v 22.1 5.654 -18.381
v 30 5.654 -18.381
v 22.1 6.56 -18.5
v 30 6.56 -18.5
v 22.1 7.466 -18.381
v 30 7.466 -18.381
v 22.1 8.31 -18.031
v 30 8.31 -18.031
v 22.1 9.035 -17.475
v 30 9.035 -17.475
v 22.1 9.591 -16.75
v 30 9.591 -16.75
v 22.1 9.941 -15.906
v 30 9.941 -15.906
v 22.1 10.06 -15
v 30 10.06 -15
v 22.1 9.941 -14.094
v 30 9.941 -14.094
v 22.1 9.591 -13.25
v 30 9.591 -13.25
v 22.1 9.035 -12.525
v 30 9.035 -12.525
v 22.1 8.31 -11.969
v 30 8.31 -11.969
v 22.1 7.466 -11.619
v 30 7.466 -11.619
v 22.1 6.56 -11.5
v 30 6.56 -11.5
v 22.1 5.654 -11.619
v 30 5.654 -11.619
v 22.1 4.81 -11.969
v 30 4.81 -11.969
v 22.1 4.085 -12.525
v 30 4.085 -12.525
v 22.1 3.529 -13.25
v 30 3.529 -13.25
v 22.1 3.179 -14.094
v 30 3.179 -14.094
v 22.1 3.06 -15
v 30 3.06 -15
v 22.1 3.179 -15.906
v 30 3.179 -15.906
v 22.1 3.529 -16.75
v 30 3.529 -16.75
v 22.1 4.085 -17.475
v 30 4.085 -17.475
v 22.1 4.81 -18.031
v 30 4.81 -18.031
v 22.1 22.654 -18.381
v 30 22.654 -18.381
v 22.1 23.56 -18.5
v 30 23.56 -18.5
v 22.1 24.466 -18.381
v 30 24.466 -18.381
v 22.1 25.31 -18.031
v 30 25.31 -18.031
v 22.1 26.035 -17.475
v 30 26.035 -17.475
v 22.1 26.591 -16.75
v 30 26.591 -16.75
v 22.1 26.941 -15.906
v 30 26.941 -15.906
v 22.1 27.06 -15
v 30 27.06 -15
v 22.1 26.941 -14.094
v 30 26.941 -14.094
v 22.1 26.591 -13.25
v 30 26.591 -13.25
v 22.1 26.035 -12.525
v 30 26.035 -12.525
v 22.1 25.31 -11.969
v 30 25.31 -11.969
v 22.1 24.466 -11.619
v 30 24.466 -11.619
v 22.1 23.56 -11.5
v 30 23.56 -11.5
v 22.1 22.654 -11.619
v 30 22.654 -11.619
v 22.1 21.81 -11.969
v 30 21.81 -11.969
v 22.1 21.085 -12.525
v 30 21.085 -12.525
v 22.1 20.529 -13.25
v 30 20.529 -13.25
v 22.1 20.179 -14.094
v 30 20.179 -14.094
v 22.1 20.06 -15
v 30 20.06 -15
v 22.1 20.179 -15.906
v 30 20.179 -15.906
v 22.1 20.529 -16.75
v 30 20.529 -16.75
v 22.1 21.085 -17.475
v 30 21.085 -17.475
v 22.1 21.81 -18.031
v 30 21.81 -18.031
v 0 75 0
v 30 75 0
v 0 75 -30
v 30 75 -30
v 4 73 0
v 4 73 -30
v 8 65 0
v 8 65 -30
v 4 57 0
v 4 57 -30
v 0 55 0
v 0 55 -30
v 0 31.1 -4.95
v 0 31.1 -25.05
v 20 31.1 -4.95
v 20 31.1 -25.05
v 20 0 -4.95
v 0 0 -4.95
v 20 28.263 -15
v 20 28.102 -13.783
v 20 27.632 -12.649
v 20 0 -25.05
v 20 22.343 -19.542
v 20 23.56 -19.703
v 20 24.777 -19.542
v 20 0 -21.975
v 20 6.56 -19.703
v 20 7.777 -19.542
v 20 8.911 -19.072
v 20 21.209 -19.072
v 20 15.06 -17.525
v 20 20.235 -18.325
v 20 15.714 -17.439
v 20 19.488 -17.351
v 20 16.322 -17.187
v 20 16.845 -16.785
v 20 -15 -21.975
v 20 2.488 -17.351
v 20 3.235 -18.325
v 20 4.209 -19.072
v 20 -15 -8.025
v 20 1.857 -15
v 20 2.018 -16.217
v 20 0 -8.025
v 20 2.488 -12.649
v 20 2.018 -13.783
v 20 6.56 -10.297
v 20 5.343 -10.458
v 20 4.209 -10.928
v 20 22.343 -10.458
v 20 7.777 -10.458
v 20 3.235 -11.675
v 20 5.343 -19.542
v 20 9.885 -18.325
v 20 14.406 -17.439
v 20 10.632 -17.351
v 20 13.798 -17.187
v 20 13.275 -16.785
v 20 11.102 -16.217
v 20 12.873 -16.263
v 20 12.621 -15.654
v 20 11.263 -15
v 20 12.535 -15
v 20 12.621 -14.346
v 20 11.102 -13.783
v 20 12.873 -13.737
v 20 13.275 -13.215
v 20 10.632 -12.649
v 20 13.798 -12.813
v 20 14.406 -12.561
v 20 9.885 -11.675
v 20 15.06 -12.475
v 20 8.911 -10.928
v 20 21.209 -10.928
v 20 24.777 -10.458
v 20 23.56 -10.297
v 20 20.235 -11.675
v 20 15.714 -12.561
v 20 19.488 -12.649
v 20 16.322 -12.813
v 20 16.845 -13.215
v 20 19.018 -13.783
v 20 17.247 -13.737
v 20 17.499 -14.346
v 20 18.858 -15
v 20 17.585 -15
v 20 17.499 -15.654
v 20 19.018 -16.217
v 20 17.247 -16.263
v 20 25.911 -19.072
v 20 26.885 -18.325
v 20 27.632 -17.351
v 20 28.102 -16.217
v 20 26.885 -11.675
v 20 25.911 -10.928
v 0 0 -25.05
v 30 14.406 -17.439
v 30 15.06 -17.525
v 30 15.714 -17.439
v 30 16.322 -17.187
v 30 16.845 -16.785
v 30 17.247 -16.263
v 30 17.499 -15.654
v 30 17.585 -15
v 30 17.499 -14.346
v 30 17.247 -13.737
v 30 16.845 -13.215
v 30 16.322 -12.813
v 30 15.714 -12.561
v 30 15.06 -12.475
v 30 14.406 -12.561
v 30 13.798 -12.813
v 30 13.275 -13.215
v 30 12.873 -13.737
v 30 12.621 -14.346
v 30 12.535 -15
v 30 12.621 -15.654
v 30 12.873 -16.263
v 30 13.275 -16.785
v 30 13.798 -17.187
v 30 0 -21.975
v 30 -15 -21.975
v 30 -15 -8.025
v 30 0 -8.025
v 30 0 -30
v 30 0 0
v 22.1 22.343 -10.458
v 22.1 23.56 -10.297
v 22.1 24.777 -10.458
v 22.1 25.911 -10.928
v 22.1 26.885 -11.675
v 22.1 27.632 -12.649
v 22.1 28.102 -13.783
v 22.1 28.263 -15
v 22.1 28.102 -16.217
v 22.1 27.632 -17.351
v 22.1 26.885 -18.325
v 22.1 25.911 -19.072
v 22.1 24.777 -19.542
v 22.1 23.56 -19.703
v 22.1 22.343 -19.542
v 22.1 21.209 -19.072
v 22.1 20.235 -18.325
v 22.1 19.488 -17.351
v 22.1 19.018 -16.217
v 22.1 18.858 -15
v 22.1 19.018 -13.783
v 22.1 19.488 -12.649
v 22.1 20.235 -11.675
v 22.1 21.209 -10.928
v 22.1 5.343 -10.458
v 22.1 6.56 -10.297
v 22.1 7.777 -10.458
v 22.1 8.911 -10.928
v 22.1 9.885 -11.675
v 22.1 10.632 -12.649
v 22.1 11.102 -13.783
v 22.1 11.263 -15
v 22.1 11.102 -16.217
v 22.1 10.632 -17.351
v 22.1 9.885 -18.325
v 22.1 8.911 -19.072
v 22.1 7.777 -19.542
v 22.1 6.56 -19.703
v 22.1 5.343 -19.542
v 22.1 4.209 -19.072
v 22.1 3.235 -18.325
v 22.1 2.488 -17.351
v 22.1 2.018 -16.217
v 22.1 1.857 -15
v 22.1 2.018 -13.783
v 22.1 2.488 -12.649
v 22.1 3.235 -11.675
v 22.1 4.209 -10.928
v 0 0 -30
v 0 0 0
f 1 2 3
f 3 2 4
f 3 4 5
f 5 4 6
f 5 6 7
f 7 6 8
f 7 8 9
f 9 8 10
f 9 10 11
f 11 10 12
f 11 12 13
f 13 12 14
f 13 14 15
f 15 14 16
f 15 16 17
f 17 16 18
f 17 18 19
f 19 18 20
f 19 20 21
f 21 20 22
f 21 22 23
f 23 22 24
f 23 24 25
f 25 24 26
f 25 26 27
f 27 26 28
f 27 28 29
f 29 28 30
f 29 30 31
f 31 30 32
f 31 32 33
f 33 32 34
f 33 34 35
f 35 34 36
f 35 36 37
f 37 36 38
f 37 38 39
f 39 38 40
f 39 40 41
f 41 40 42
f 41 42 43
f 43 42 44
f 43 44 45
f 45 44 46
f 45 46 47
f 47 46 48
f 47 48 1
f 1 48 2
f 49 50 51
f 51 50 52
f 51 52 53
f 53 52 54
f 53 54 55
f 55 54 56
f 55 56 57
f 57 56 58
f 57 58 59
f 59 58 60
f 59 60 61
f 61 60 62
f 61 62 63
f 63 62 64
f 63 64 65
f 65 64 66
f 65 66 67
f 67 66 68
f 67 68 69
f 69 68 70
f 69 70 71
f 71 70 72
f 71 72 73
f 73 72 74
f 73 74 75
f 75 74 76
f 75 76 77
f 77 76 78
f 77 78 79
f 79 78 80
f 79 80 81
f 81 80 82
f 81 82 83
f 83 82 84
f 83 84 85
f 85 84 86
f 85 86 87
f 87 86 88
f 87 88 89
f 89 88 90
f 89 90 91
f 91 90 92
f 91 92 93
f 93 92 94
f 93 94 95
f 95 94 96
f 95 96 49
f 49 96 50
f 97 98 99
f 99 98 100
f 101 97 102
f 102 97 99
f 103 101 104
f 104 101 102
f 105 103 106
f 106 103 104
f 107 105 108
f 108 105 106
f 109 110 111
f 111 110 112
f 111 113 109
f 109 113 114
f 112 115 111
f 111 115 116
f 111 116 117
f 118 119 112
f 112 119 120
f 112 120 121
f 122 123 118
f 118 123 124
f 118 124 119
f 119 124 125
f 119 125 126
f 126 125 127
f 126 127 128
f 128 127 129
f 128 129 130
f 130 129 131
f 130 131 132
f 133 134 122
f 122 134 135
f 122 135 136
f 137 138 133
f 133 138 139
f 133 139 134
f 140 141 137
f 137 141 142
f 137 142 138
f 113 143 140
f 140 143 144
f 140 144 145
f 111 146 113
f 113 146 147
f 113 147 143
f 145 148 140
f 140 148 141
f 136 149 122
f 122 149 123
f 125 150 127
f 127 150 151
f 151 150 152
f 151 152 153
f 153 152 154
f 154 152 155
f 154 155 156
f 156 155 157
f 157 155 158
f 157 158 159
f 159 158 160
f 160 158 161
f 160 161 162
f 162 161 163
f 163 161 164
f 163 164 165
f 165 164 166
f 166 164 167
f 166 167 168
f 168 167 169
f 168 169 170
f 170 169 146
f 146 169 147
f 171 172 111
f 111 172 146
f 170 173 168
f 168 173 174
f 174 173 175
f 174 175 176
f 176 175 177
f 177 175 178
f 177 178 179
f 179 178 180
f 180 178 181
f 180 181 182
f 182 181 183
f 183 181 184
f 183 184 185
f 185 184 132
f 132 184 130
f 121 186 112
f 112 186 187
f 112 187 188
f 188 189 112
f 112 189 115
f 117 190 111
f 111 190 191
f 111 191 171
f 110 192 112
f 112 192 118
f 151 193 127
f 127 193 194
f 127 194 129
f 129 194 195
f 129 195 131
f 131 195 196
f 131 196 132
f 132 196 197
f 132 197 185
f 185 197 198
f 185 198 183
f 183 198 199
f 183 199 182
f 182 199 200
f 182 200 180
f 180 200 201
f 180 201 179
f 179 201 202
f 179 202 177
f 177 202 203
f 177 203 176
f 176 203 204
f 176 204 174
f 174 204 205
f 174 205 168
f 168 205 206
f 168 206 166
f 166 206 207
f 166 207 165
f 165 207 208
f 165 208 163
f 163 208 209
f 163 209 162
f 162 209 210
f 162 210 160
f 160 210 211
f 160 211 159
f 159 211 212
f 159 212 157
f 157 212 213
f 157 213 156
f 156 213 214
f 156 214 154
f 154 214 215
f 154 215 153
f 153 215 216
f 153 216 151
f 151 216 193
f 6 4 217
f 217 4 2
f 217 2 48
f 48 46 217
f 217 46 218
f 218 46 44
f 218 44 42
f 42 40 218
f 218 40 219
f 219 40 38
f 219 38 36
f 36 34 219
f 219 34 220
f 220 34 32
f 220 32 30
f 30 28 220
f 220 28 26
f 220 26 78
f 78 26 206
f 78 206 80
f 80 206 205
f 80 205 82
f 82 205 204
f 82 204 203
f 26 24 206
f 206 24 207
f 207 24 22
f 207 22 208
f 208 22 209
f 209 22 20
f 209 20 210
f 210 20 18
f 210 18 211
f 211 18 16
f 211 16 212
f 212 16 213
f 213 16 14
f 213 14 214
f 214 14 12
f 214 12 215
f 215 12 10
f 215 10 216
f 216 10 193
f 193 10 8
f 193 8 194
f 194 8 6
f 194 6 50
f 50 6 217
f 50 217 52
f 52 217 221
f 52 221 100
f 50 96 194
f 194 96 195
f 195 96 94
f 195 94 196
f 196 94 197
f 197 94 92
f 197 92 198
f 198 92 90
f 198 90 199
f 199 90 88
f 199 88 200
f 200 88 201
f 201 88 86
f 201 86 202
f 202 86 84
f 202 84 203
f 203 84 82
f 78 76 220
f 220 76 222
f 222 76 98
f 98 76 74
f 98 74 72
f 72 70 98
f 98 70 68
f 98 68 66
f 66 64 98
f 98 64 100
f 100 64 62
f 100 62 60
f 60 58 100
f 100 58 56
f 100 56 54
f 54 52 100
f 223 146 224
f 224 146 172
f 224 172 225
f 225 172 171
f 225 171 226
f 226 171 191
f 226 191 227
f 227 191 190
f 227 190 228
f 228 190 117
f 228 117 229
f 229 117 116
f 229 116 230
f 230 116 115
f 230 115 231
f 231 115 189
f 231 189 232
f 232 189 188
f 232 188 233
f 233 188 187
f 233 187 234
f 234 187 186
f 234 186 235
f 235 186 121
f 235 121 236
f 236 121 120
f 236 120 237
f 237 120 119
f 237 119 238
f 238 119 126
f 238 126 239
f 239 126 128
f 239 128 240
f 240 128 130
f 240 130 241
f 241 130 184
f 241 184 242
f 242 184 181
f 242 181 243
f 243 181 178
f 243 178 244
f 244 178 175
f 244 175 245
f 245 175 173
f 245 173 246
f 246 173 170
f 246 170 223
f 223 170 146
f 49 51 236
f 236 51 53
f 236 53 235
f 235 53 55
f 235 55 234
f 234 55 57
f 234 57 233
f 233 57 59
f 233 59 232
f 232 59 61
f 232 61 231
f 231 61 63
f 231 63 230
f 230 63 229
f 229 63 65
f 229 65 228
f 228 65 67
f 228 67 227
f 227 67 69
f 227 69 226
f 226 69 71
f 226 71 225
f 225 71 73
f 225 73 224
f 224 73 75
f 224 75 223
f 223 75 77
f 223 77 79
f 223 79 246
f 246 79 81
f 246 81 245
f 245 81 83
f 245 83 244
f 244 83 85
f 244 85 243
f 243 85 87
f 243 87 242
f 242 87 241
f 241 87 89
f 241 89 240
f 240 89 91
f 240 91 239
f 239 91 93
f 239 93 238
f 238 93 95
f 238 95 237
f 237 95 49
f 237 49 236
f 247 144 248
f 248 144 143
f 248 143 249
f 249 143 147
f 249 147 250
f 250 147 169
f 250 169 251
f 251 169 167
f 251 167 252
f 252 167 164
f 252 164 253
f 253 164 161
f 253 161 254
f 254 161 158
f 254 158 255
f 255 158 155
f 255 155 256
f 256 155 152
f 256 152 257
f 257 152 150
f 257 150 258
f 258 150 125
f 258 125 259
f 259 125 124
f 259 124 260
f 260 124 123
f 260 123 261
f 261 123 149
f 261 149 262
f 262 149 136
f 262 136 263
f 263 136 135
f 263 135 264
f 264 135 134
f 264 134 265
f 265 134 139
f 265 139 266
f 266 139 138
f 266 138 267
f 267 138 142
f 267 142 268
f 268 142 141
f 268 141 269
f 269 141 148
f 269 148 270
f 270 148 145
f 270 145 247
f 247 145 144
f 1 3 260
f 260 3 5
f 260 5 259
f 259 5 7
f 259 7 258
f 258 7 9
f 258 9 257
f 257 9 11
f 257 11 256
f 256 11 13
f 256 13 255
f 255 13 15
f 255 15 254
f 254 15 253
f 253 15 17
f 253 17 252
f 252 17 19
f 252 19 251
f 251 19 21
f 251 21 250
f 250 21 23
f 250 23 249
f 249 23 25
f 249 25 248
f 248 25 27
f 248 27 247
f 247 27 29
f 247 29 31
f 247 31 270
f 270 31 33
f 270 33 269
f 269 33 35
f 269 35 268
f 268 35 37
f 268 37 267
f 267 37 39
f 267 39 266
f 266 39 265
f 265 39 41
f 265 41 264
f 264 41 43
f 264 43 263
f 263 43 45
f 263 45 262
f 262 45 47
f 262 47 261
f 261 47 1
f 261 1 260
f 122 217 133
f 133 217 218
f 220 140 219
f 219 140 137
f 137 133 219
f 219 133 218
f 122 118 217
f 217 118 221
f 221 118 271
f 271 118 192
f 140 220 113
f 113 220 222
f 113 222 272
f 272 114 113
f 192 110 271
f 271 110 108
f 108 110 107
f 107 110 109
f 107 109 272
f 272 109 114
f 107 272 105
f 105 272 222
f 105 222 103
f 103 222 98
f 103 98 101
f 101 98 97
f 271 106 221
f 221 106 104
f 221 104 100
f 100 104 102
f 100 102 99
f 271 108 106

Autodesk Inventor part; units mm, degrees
ref_plane "YZ Plane" through (0, 0, 0) normal (1, 0, 0) x (0, 1, 0)
ref_plane "XZ Plane" through (0, 0, 0) normal (0, 1, 0) x (-1, 0, 0)
ref_plane "XY Plane" through (0, 0, 0) normal (0, 0, 1) x (1, 0, 0)
sketch "Sketch1" plane through (0, 0, 0) normal (0, 0, 1) x (1, 0, 0)
  line L0 (0, 0) -> (25, 0)
  line L1 (25, 0) -> (25, 40)
  line L2 (25, 40) -> (0, 40)
  line L3 (0, 40) -> (0, 0)
  dimension "d1" = 25
  dimension "d2" = 40
  dimension "d3" = 25
extrude "Extrusion1" add sketch "Sketch1" against normal blind 30
sketch "Sketch2" plane through (25, 0, 0) normal (1, 0, 0) x (0, 0, -1)
  line L0 (0, 0) -> (30, 0) projected
  circle A0 centre (15, 6.56) radius 2.46
extrude "Extrusion2" cut sketch "Sketch2" against normal blind 30
sketch "Sketch3" plane through (0, 0, 0) normal (-1, 0, 0) x (0, 0, 1)
  line L0 (0, 0) -> (-30, 0) projected
  line L1 (-25.05, 0) -> (-4.95, 0)
  line L2 (-4.95, 0) -> (-4.95, 33.12)
  line L3 (-4.95, 33.12) -> (-25.05, 33.12)
  line L4 (-25.05, 33.12) -> (-25.05, 0)
  dimension "d11" = 20.1
extrude "Extrusion3" cut sketch "Sketch3" against normal blind 20
sketch "Sketch4" plane through (0, 0, 0) normal (0, -1, 0) x (1, 0, 0)
  line L0 (20, -4.95) -> (20, -25.05) projected
  line L1 (20, -15) -> (25, -15)
  line L2 (25, 0) -> (25, -30) projected
  line L3 (20, -8.025) -> (25, -8.025)
  line L4 (25, -8.025) -> (25, -21.975)
  line L5 (25, -21.975) -> (20, -21.975)
  line L6 (20, -21.975) -> (20, -8.025)
  line L7 (20, -8.025) -> (25, -21.975) construction
  line L8 (25, -8.025) -> (20, -21.975) construction
  line L9 (25, -12.54) -> (25, -17.46) projected
  point P0 (0, 0)
  point P1 (22.5, -15)
  dimension "d14" = 13.95
extrude "Extrusion4" add sketch "Sketch4" along normal blind 15
sketch "Sketch5" plane through (20, 0, 0) normal (-1, 0, 0) x (0, 0, 1)
  circle A0 centre (-15, 6.56) radius 2.46 projected
  circle A1 centre (-15, 6.56) radius 4.7025
  circle A2 centre (-15, 6.56) radius 2.46 projected
  circle A3 centre (-15, 6.56) radius 2.46
  point P0 (0, 0)
  dimension "d17" = 9.405
extrude "Extrusion5" cut sketch "Sketch5" against normal blind 2.1
sketch "Sketch6" plane through (25, 0, 0) normal (1, 0, 0) x (0, 0, -1)
  circle A0 centre (15, 6.56) radius 4.7025 projected
  line L0 (15, 6.56) -> (15, 23.56)
  circle A1 centre (15, 23.56) radius 2.46
  point P0 (0, 0)
  dimension "d20" = 17
  dimension "d21" = 4.92
extrude "Extrusion6" cut sketch "Sketch6" against normal blind 10 contours A1
sketch "Sketch7" plane through (20, 0, 0) normal (-1, 0, 0) x (0, 0, 1)
  circle A0 centre (-15, 23.56) radius 2.46 projected
  circle A1 centre (-15, 23.56) radius 4.7025
  point P0 (0, 0)
  dimension "d24" = 9.405
extrude "Extrusion7" cut sketch "Sketch7" against normal blind 2.1
sketch "Sketch9" plane through (25, 0, 0) normal (1, 0, 0) x (0, 0, -1)
  circle A0 centre (15, 6.56) radius 2.46 projected
  circle A1 centre (15, 6.56) radius 2.46
  circle A2 centre (15, 23.56) radius 2.46 projected
  circle A3 centre (15, 23.56) radius 2.46
  line L0 (30, 40) -> (30, 0) projected
  line L1 (30, 0) -> (30, 40)
  line L2 (30, 40) -> (0, 40)
  line L3 (0, 40) -> (0, 0)
  line L4 (0, 0) -> (8.025, 0) projected
  line L5 (21.975, 0) -> (21.975, -15)
  line L6 (21.975, -15) -> (8.025, -15)
  line L7 (8.025, -15) -> (8.025, 0)
  line L8 (0, 0) -> (8.025, 0)
  line L9 (21.975, 0) -> (30, 0)
extrude "Extrusion8" add sketch "Sketch9" along normal blind 5
sketch "Sketch10" plane through (0, 40, 0) normal (0, 1, 0) x (1, 0, 0)
  line L0 (0, 30) -> (30, 30) projected
  line L1 (30, 0) -> (0, 0) projected
  line L2 (0, 30) -> (30, 30)
  line L3 (30, 30) -> (30, 0)
  line L4 (30, 0) -> (0, 0)
  line L5 (0, 0) -> (0, 30)
extrude "Extrusion9" add sketch "Sketch10" along normal blind 15
sketch "Sketch12" plane through (30, 0, 0) normal (1, 0, 0) x (0, 0, -1)
  circle A0 centre (15, 6.56) radius 2.46 projected
  line L0 (15, 6.56) -> (15, 15.06)
  circle A1 centre (15, 15.06) radius 2.525
  point P0 (0, 0)
  dimension "d31" = 8.5
  dimension "d33" = 5.05
extrude "Extrusion10" cut sketch "Sketch12" against normal blind 30 contours A1
sketch "Sketch15" plane through (0, 0, -25.05) normal (-1, 0, 0) x (0, 0, 1)
  line L0 (0, 33.12) -> (20.1, 33.12) projected
  line L1 (20.1, 33.12) -> (20.1, 0) projected
  line L2 (0, 33.12) -> (20.1, 33.12)
  line L3 (20.1, 33.12) -> (20.1, 31.1)
  line L4 (20.1, 31.1) -> (0, 31.1)
  line L5 (0, 31.1) -> (0, 33.12)
  point P0 (25.05, 0)
  dimension "d57" = 2.02
extrude "Extrusion13" add sketch "Sketch15" against normal blind 20
sketch "Sketch17" plane through (0, 0, 0) normal (0, 0, 1) x (1, 0, 0)
  line L0 (0, 55) -> (30, 55) projected
  line L1 (0, 55) -> (0, 0) projected
  line L2 (0, 55) -> (30, 55)
  line L3 (4, 73) -> (0, 75)
  line L4 (4, 57) -> (0, 55)
  line L5 (4, 57) -> (8, 65)
  line L6 (4, 73) -> (8, 65)
  line L7 (0, 75) -> (30, 75)
  line L8 (30, 55) -> (30, 75)
extrude "Extrusion14" add sketch "Sketch17" against normal blind 30
sketch "Sketch23" plane through (30, 0, 0) normal (1, 0, 0) x (0, 0, -1)
  circle A0 centre (15, 6.56) radius 2.46 projected
  circle A1 centre (15, 6.56) radius 3.5
  circle A2 centre (15, 23.56) radius 2.46 projected
  circle A3 centre (15, 23.56) radius 3.5
  point P0 (0, 0)
  dimension "d88" = 7
  dimension "d89" = 7
extrude "Extrusion16" cut sketch "Sketch23" against normal blind 10
properties part number "rec_c_16mm_x_120mm"
